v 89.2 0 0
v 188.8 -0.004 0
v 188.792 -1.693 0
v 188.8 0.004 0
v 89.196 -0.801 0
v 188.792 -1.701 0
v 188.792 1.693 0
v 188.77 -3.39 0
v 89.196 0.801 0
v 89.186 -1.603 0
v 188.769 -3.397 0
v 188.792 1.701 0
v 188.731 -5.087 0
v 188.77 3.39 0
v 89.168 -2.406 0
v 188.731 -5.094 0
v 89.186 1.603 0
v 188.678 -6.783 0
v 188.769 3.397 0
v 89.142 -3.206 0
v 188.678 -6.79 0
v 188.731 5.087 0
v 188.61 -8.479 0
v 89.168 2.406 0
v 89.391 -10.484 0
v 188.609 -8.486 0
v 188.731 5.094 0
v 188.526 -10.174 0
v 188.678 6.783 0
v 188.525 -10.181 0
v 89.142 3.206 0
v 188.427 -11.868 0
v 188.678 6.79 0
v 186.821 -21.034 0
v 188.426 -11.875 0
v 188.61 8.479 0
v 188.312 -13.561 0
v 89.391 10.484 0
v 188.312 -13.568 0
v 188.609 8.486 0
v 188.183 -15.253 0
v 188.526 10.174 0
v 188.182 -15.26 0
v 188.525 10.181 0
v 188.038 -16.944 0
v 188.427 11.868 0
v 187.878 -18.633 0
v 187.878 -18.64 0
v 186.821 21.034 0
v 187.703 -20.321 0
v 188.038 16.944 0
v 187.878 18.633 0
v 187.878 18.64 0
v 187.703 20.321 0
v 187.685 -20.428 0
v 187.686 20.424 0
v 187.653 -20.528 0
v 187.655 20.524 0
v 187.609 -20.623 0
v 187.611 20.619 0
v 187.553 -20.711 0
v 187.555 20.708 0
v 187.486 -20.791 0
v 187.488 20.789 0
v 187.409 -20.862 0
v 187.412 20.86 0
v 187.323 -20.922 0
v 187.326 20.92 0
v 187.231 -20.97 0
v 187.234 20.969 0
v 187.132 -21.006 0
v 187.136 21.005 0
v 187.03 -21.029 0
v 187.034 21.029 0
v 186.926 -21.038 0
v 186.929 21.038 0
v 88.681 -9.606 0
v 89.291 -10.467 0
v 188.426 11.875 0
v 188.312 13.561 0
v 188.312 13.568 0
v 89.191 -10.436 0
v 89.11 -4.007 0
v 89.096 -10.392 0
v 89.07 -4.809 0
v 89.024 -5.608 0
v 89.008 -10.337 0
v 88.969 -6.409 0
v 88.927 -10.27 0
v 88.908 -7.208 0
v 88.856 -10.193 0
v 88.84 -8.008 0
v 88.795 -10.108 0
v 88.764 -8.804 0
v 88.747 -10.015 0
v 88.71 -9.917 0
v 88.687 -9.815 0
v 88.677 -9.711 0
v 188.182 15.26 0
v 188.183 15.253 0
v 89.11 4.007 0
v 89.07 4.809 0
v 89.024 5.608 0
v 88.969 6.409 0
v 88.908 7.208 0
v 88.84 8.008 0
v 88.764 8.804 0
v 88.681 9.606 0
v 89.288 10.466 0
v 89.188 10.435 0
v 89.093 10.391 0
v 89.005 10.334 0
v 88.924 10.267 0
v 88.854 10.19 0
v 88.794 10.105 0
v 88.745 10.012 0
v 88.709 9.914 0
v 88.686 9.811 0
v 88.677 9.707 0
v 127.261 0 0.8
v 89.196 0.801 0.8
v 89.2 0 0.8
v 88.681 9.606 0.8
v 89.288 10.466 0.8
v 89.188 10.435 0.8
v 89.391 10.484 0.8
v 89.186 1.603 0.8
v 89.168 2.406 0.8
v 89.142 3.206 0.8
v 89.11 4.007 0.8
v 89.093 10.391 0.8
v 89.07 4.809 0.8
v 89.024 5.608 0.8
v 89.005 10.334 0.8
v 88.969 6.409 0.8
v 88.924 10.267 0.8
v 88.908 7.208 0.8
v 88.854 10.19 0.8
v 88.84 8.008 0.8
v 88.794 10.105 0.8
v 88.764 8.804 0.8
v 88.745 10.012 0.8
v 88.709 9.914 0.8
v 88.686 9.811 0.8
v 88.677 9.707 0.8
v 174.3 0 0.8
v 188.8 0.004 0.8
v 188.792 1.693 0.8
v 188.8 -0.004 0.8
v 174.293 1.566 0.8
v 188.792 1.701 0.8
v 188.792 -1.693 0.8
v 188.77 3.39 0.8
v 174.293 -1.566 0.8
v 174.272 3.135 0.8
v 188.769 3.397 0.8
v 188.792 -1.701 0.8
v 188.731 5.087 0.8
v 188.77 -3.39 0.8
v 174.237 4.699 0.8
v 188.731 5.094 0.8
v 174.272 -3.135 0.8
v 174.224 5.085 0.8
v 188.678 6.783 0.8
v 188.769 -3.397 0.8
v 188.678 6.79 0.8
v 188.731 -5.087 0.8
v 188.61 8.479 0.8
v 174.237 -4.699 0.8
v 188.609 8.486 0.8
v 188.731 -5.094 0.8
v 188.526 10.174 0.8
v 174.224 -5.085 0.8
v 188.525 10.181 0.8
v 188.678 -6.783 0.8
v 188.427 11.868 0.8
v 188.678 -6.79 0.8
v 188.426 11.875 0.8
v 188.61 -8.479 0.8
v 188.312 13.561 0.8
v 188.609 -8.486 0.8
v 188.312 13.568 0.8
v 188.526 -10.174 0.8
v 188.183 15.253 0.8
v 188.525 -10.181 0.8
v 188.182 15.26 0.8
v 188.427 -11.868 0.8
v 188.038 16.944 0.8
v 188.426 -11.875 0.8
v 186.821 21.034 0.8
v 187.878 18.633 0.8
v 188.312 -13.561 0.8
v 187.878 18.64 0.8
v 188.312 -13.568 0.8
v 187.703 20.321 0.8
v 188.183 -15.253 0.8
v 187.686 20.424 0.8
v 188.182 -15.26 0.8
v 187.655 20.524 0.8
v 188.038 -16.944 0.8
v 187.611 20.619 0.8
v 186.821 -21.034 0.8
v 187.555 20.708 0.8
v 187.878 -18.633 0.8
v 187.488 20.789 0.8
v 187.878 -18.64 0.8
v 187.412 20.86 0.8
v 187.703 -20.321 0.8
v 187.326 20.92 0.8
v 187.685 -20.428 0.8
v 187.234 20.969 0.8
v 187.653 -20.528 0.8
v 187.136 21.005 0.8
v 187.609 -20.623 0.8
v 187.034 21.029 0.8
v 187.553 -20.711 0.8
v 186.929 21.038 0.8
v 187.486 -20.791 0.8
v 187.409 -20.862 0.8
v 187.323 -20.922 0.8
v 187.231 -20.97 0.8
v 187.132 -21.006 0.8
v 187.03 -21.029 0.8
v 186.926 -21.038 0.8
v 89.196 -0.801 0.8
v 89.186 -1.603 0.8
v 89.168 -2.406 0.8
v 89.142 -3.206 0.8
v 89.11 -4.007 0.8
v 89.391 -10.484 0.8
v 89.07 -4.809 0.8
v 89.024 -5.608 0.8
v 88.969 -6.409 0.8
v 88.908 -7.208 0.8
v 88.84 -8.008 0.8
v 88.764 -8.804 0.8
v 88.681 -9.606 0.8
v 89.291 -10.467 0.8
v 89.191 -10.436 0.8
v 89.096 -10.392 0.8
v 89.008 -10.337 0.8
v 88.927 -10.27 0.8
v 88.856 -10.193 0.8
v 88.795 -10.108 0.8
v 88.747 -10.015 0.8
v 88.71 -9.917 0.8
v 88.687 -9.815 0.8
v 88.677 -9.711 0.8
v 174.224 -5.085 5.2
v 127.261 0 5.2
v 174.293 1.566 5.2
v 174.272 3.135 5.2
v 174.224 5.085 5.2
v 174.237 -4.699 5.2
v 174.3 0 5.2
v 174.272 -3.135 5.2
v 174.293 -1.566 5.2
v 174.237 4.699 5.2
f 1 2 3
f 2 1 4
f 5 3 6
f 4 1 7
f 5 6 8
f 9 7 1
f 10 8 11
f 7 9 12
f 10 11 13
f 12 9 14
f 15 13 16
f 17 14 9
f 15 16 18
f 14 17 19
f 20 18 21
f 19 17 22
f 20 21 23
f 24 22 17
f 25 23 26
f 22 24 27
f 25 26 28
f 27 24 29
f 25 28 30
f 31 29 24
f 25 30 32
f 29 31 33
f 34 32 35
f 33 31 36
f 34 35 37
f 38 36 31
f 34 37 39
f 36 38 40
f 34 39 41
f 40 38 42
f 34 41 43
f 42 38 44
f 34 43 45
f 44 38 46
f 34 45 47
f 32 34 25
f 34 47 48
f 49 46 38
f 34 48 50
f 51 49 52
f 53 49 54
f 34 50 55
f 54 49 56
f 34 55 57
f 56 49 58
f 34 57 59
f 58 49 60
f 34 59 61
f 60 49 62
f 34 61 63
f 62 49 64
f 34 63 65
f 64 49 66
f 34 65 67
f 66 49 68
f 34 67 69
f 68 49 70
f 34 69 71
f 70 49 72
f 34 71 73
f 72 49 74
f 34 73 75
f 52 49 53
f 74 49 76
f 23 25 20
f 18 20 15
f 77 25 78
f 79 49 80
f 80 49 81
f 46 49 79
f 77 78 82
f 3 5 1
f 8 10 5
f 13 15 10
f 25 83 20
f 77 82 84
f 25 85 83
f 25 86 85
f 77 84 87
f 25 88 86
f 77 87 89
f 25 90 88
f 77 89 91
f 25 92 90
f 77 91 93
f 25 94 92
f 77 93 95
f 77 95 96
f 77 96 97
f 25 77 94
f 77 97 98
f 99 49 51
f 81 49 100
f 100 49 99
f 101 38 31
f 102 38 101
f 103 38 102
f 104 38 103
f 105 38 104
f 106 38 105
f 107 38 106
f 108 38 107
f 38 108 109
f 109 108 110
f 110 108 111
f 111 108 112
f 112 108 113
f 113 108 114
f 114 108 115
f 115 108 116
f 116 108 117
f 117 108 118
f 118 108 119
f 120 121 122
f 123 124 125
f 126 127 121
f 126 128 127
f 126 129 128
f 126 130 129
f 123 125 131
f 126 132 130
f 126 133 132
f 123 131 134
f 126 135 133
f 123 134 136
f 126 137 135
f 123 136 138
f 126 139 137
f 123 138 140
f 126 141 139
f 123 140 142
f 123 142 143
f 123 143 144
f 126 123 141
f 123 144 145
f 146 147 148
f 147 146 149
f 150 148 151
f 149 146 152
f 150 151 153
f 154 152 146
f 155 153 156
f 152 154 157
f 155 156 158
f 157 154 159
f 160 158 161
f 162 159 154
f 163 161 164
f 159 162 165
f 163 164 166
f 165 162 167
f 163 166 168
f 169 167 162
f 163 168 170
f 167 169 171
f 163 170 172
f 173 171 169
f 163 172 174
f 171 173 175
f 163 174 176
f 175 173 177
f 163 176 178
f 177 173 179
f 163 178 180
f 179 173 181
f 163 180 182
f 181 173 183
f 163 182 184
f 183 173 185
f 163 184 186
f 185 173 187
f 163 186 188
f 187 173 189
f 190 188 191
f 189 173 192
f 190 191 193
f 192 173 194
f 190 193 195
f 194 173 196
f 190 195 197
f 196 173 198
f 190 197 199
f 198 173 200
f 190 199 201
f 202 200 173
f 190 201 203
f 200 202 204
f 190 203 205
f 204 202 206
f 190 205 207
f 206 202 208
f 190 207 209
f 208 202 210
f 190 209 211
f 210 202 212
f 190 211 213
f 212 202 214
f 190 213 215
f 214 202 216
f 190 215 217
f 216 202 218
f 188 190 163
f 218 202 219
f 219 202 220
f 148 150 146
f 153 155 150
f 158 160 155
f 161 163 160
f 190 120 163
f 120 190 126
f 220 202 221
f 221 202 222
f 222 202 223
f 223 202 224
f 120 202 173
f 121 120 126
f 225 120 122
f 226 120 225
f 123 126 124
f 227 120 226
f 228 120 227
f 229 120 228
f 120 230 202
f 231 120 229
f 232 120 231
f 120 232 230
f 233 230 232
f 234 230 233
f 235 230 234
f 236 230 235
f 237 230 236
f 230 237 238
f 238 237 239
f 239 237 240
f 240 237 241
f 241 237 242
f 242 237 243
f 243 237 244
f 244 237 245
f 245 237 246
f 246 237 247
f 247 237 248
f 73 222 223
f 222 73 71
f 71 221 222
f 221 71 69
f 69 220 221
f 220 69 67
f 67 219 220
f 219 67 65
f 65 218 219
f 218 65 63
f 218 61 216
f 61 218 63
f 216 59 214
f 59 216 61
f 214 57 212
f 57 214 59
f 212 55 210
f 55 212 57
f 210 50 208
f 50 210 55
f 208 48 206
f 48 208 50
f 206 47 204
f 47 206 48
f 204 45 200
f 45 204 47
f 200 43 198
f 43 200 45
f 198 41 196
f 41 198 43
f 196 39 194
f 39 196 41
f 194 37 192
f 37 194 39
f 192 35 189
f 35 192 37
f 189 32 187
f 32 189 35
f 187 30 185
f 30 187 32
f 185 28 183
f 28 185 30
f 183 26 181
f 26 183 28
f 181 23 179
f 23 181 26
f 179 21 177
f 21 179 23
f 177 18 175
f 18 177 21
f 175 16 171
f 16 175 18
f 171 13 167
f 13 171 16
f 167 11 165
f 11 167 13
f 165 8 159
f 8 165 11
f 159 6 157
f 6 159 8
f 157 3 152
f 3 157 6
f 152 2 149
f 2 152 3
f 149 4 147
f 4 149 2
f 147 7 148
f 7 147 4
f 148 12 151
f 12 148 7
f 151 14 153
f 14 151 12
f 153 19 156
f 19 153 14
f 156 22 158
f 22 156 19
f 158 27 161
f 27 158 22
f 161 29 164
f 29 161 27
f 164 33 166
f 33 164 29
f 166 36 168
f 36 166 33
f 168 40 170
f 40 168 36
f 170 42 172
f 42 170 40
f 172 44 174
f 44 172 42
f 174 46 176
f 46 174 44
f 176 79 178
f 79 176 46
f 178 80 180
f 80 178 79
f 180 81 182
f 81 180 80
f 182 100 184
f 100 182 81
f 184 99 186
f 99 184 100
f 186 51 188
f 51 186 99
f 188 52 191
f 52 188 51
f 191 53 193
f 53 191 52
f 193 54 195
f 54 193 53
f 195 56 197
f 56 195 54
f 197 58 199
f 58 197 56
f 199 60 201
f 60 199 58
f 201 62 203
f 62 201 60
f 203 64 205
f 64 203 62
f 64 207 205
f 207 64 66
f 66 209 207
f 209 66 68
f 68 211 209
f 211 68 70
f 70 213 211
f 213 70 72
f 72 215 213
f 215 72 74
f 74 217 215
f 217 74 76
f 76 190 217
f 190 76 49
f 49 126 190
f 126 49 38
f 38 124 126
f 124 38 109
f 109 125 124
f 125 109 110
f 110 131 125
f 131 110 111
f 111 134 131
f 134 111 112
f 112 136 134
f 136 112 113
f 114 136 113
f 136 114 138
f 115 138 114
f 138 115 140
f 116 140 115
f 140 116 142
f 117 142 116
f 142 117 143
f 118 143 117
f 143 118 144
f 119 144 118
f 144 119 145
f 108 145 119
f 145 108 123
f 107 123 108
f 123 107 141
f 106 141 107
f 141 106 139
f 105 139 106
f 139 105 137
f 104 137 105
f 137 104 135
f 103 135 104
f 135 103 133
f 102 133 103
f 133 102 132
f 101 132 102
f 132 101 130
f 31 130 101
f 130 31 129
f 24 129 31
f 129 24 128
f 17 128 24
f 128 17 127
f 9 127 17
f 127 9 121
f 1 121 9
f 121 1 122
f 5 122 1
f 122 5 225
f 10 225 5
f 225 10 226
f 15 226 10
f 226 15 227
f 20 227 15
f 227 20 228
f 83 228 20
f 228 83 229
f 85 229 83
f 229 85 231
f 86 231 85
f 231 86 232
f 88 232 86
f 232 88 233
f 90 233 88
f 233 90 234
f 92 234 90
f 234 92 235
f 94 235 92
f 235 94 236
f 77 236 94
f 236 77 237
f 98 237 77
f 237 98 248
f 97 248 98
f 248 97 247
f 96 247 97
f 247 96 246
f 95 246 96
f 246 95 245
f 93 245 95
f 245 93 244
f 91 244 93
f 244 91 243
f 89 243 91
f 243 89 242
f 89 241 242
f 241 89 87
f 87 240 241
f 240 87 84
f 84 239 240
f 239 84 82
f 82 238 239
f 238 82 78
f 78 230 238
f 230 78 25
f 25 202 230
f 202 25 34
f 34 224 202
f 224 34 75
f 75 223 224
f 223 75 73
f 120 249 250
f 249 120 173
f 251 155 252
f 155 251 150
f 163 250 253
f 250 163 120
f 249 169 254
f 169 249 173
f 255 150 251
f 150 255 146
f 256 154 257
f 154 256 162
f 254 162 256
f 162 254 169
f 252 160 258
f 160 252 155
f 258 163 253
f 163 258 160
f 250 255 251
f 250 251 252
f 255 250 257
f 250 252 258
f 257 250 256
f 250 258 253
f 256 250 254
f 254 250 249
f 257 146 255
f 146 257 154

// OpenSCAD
// Gen-DT — bobbin BASE (bottom flange + hub). Print x12, flange down. Wind 24 AWG x 164 t around
// the hub with the LID glued on (coil_lid.stl). Copper lives ONLY between the flanges (no proud winds).
include <parameters.scad>;
$fn = 48;
module sector_2d(r_in, r_out, ang) {
    polygon([
        for (a = [-ang/2 : ang/24 : ang/2]) [r_in*cos(a), r_in*sin(a)],
        for (a = [ang/2 : -ang/24 : -ang/2]) [r_out*cos(a), r_out*sin(a)]
    ]);
}
module footprint_2d() { offset(r=wall) sector_2d(coil_id_r, coil_od_r, span_deg); }
module hub_2d()       { offset(delta=-coil_core_inset) sector_2d(coil_id_r, coil_od_r, span_deg); }

union() {
    linear_extrude(flange_t) footprint_2d();
    translate([0, 0, flange_t - 0.01]) linear_extrude(former_web + 0.01) hub_2d();
}
